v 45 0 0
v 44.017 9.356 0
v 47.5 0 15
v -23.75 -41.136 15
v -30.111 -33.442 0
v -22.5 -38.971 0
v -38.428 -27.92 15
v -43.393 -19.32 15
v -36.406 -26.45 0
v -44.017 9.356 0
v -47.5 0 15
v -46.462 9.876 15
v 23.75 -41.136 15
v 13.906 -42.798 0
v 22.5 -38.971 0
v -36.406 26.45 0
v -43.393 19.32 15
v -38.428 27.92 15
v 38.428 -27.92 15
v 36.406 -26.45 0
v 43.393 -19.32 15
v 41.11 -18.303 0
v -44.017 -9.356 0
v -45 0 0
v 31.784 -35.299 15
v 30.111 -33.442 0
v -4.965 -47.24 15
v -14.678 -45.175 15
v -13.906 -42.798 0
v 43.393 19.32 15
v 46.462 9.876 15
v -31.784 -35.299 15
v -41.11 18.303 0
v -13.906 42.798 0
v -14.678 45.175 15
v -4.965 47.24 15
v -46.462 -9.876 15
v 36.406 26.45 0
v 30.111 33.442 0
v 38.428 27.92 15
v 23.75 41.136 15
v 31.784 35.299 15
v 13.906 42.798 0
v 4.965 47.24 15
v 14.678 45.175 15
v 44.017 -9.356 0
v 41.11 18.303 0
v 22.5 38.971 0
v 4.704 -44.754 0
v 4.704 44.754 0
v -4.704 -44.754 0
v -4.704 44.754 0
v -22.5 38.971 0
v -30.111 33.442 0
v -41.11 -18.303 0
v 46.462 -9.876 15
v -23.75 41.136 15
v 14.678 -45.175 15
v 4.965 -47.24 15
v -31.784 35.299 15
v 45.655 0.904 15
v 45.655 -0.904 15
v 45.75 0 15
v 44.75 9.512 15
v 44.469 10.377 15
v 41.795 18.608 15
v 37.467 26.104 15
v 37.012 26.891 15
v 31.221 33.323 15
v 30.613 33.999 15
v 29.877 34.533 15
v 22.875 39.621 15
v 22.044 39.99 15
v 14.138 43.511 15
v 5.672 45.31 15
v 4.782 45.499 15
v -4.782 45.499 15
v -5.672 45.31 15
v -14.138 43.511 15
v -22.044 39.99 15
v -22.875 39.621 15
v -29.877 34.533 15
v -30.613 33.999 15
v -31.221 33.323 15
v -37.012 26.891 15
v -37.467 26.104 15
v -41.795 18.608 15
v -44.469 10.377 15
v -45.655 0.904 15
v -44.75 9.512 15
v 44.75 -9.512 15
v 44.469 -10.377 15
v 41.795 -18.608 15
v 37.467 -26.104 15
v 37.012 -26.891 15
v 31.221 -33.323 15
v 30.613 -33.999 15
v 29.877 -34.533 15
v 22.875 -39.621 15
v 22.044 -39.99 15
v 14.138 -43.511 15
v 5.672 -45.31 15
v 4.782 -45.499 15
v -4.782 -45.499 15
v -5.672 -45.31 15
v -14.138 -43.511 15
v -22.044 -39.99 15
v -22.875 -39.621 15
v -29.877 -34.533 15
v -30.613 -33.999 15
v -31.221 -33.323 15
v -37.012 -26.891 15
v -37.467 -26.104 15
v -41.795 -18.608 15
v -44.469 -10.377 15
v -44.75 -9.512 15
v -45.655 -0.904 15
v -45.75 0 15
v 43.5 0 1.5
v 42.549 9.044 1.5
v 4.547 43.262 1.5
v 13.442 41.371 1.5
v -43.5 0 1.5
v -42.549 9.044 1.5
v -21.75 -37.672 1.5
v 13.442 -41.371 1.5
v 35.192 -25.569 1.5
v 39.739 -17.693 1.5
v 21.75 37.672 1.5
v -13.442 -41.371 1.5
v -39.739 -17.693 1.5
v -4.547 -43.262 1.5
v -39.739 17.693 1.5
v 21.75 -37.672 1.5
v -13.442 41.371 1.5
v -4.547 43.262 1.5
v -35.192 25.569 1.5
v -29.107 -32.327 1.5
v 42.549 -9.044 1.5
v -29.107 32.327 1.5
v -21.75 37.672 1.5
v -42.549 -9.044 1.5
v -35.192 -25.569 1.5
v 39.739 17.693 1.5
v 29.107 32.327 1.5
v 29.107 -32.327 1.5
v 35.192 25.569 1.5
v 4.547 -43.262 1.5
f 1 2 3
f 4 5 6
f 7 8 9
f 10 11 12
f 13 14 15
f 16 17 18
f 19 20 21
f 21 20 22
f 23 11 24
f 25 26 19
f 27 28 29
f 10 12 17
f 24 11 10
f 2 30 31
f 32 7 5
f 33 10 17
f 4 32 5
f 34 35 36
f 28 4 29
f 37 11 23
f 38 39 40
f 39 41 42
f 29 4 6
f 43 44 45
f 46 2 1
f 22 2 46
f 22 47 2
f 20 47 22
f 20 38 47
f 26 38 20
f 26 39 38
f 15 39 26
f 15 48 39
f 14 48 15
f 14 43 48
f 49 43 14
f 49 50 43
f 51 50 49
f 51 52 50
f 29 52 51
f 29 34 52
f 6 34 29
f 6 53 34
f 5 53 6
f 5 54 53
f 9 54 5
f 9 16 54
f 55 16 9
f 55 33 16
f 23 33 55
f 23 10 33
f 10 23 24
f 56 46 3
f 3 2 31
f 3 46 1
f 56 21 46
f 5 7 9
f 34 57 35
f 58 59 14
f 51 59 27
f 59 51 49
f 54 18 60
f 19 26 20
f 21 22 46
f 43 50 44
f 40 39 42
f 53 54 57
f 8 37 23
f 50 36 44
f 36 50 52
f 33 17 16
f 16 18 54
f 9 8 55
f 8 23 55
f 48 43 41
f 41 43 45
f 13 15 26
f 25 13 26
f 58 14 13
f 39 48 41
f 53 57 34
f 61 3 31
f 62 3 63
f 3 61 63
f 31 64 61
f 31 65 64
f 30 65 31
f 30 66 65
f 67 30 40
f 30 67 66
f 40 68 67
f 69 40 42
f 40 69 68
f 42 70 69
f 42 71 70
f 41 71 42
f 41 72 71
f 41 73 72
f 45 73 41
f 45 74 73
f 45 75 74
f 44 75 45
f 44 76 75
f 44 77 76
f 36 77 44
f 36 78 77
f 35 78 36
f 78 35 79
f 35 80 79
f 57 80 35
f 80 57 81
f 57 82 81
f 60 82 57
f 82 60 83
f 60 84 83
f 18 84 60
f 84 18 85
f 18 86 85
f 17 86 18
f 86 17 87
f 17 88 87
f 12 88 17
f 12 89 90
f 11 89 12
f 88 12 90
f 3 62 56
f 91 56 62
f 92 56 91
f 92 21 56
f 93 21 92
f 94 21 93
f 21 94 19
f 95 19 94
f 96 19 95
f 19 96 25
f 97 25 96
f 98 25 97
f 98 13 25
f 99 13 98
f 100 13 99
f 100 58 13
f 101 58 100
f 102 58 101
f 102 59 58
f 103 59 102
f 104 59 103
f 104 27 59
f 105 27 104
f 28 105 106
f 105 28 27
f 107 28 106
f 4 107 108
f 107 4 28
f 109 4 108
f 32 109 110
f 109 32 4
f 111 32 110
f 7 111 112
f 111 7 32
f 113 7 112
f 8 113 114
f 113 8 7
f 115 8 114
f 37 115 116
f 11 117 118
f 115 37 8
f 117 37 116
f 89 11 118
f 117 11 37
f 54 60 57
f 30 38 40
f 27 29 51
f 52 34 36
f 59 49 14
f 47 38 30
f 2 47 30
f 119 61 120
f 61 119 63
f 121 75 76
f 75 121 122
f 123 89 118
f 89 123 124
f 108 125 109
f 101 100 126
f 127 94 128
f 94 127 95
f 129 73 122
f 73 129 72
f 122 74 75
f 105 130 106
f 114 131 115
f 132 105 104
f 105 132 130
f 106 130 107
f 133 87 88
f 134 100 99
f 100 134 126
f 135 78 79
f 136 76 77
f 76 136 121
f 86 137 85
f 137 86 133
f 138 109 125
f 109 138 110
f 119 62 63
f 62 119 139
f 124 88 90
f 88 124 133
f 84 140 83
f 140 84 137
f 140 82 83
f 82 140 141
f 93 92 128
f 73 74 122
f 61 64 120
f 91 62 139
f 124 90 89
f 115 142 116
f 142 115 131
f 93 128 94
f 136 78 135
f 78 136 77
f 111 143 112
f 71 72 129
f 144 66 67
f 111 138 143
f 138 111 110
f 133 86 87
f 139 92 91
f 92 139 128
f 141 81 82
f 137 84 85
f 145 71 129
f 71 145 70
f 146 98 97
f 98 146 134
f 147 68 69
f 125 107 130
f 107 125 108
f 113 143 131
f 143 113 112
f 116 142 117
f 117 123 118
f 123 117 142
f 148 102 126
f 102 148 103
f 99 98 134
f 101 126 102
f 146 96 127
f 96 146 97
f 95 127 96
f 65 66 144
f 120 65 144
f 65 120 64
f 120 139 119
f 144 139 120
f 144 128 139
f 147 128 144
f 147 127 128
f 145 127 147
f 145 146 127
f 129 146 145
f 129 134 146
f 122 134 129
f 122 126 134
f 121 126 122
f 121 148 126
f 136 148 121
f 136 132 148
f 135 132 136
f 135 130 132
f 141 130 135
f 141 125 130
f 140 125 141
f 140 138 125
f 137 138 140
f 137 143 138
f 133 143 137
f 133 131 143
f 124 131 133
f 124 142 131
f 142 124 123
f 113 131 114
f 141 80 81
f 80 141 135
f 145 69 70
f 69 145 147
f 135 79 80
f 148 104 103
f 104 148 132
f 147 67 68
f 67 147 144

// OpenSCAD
/*
intersection() {
    plant_mash();
    translate([0,0,-1]) cylinder(3,80/2,80/2);
}

difference() {
    cylinder(1,83/2,83/2);
    translate([0,0,-1])cylinder(3,79/2,79/2);
}


module plant_mash() {
    translate([-50,-50,0])
    for(i=[0:5:100]) {
        translate([i,0,0]) cube([2,100,1]);
        translate([0,i,0]) cube([100,2,1]);
    }
}
*/

plant_dish();

module plant_dish(r=87) {
    difference() {
        cylinder(15, (r+3)/2, (r+5+3)/2);
        translate([0,0,1.5])cylinder(15, r/2, (r+5)/2);
    }
}
